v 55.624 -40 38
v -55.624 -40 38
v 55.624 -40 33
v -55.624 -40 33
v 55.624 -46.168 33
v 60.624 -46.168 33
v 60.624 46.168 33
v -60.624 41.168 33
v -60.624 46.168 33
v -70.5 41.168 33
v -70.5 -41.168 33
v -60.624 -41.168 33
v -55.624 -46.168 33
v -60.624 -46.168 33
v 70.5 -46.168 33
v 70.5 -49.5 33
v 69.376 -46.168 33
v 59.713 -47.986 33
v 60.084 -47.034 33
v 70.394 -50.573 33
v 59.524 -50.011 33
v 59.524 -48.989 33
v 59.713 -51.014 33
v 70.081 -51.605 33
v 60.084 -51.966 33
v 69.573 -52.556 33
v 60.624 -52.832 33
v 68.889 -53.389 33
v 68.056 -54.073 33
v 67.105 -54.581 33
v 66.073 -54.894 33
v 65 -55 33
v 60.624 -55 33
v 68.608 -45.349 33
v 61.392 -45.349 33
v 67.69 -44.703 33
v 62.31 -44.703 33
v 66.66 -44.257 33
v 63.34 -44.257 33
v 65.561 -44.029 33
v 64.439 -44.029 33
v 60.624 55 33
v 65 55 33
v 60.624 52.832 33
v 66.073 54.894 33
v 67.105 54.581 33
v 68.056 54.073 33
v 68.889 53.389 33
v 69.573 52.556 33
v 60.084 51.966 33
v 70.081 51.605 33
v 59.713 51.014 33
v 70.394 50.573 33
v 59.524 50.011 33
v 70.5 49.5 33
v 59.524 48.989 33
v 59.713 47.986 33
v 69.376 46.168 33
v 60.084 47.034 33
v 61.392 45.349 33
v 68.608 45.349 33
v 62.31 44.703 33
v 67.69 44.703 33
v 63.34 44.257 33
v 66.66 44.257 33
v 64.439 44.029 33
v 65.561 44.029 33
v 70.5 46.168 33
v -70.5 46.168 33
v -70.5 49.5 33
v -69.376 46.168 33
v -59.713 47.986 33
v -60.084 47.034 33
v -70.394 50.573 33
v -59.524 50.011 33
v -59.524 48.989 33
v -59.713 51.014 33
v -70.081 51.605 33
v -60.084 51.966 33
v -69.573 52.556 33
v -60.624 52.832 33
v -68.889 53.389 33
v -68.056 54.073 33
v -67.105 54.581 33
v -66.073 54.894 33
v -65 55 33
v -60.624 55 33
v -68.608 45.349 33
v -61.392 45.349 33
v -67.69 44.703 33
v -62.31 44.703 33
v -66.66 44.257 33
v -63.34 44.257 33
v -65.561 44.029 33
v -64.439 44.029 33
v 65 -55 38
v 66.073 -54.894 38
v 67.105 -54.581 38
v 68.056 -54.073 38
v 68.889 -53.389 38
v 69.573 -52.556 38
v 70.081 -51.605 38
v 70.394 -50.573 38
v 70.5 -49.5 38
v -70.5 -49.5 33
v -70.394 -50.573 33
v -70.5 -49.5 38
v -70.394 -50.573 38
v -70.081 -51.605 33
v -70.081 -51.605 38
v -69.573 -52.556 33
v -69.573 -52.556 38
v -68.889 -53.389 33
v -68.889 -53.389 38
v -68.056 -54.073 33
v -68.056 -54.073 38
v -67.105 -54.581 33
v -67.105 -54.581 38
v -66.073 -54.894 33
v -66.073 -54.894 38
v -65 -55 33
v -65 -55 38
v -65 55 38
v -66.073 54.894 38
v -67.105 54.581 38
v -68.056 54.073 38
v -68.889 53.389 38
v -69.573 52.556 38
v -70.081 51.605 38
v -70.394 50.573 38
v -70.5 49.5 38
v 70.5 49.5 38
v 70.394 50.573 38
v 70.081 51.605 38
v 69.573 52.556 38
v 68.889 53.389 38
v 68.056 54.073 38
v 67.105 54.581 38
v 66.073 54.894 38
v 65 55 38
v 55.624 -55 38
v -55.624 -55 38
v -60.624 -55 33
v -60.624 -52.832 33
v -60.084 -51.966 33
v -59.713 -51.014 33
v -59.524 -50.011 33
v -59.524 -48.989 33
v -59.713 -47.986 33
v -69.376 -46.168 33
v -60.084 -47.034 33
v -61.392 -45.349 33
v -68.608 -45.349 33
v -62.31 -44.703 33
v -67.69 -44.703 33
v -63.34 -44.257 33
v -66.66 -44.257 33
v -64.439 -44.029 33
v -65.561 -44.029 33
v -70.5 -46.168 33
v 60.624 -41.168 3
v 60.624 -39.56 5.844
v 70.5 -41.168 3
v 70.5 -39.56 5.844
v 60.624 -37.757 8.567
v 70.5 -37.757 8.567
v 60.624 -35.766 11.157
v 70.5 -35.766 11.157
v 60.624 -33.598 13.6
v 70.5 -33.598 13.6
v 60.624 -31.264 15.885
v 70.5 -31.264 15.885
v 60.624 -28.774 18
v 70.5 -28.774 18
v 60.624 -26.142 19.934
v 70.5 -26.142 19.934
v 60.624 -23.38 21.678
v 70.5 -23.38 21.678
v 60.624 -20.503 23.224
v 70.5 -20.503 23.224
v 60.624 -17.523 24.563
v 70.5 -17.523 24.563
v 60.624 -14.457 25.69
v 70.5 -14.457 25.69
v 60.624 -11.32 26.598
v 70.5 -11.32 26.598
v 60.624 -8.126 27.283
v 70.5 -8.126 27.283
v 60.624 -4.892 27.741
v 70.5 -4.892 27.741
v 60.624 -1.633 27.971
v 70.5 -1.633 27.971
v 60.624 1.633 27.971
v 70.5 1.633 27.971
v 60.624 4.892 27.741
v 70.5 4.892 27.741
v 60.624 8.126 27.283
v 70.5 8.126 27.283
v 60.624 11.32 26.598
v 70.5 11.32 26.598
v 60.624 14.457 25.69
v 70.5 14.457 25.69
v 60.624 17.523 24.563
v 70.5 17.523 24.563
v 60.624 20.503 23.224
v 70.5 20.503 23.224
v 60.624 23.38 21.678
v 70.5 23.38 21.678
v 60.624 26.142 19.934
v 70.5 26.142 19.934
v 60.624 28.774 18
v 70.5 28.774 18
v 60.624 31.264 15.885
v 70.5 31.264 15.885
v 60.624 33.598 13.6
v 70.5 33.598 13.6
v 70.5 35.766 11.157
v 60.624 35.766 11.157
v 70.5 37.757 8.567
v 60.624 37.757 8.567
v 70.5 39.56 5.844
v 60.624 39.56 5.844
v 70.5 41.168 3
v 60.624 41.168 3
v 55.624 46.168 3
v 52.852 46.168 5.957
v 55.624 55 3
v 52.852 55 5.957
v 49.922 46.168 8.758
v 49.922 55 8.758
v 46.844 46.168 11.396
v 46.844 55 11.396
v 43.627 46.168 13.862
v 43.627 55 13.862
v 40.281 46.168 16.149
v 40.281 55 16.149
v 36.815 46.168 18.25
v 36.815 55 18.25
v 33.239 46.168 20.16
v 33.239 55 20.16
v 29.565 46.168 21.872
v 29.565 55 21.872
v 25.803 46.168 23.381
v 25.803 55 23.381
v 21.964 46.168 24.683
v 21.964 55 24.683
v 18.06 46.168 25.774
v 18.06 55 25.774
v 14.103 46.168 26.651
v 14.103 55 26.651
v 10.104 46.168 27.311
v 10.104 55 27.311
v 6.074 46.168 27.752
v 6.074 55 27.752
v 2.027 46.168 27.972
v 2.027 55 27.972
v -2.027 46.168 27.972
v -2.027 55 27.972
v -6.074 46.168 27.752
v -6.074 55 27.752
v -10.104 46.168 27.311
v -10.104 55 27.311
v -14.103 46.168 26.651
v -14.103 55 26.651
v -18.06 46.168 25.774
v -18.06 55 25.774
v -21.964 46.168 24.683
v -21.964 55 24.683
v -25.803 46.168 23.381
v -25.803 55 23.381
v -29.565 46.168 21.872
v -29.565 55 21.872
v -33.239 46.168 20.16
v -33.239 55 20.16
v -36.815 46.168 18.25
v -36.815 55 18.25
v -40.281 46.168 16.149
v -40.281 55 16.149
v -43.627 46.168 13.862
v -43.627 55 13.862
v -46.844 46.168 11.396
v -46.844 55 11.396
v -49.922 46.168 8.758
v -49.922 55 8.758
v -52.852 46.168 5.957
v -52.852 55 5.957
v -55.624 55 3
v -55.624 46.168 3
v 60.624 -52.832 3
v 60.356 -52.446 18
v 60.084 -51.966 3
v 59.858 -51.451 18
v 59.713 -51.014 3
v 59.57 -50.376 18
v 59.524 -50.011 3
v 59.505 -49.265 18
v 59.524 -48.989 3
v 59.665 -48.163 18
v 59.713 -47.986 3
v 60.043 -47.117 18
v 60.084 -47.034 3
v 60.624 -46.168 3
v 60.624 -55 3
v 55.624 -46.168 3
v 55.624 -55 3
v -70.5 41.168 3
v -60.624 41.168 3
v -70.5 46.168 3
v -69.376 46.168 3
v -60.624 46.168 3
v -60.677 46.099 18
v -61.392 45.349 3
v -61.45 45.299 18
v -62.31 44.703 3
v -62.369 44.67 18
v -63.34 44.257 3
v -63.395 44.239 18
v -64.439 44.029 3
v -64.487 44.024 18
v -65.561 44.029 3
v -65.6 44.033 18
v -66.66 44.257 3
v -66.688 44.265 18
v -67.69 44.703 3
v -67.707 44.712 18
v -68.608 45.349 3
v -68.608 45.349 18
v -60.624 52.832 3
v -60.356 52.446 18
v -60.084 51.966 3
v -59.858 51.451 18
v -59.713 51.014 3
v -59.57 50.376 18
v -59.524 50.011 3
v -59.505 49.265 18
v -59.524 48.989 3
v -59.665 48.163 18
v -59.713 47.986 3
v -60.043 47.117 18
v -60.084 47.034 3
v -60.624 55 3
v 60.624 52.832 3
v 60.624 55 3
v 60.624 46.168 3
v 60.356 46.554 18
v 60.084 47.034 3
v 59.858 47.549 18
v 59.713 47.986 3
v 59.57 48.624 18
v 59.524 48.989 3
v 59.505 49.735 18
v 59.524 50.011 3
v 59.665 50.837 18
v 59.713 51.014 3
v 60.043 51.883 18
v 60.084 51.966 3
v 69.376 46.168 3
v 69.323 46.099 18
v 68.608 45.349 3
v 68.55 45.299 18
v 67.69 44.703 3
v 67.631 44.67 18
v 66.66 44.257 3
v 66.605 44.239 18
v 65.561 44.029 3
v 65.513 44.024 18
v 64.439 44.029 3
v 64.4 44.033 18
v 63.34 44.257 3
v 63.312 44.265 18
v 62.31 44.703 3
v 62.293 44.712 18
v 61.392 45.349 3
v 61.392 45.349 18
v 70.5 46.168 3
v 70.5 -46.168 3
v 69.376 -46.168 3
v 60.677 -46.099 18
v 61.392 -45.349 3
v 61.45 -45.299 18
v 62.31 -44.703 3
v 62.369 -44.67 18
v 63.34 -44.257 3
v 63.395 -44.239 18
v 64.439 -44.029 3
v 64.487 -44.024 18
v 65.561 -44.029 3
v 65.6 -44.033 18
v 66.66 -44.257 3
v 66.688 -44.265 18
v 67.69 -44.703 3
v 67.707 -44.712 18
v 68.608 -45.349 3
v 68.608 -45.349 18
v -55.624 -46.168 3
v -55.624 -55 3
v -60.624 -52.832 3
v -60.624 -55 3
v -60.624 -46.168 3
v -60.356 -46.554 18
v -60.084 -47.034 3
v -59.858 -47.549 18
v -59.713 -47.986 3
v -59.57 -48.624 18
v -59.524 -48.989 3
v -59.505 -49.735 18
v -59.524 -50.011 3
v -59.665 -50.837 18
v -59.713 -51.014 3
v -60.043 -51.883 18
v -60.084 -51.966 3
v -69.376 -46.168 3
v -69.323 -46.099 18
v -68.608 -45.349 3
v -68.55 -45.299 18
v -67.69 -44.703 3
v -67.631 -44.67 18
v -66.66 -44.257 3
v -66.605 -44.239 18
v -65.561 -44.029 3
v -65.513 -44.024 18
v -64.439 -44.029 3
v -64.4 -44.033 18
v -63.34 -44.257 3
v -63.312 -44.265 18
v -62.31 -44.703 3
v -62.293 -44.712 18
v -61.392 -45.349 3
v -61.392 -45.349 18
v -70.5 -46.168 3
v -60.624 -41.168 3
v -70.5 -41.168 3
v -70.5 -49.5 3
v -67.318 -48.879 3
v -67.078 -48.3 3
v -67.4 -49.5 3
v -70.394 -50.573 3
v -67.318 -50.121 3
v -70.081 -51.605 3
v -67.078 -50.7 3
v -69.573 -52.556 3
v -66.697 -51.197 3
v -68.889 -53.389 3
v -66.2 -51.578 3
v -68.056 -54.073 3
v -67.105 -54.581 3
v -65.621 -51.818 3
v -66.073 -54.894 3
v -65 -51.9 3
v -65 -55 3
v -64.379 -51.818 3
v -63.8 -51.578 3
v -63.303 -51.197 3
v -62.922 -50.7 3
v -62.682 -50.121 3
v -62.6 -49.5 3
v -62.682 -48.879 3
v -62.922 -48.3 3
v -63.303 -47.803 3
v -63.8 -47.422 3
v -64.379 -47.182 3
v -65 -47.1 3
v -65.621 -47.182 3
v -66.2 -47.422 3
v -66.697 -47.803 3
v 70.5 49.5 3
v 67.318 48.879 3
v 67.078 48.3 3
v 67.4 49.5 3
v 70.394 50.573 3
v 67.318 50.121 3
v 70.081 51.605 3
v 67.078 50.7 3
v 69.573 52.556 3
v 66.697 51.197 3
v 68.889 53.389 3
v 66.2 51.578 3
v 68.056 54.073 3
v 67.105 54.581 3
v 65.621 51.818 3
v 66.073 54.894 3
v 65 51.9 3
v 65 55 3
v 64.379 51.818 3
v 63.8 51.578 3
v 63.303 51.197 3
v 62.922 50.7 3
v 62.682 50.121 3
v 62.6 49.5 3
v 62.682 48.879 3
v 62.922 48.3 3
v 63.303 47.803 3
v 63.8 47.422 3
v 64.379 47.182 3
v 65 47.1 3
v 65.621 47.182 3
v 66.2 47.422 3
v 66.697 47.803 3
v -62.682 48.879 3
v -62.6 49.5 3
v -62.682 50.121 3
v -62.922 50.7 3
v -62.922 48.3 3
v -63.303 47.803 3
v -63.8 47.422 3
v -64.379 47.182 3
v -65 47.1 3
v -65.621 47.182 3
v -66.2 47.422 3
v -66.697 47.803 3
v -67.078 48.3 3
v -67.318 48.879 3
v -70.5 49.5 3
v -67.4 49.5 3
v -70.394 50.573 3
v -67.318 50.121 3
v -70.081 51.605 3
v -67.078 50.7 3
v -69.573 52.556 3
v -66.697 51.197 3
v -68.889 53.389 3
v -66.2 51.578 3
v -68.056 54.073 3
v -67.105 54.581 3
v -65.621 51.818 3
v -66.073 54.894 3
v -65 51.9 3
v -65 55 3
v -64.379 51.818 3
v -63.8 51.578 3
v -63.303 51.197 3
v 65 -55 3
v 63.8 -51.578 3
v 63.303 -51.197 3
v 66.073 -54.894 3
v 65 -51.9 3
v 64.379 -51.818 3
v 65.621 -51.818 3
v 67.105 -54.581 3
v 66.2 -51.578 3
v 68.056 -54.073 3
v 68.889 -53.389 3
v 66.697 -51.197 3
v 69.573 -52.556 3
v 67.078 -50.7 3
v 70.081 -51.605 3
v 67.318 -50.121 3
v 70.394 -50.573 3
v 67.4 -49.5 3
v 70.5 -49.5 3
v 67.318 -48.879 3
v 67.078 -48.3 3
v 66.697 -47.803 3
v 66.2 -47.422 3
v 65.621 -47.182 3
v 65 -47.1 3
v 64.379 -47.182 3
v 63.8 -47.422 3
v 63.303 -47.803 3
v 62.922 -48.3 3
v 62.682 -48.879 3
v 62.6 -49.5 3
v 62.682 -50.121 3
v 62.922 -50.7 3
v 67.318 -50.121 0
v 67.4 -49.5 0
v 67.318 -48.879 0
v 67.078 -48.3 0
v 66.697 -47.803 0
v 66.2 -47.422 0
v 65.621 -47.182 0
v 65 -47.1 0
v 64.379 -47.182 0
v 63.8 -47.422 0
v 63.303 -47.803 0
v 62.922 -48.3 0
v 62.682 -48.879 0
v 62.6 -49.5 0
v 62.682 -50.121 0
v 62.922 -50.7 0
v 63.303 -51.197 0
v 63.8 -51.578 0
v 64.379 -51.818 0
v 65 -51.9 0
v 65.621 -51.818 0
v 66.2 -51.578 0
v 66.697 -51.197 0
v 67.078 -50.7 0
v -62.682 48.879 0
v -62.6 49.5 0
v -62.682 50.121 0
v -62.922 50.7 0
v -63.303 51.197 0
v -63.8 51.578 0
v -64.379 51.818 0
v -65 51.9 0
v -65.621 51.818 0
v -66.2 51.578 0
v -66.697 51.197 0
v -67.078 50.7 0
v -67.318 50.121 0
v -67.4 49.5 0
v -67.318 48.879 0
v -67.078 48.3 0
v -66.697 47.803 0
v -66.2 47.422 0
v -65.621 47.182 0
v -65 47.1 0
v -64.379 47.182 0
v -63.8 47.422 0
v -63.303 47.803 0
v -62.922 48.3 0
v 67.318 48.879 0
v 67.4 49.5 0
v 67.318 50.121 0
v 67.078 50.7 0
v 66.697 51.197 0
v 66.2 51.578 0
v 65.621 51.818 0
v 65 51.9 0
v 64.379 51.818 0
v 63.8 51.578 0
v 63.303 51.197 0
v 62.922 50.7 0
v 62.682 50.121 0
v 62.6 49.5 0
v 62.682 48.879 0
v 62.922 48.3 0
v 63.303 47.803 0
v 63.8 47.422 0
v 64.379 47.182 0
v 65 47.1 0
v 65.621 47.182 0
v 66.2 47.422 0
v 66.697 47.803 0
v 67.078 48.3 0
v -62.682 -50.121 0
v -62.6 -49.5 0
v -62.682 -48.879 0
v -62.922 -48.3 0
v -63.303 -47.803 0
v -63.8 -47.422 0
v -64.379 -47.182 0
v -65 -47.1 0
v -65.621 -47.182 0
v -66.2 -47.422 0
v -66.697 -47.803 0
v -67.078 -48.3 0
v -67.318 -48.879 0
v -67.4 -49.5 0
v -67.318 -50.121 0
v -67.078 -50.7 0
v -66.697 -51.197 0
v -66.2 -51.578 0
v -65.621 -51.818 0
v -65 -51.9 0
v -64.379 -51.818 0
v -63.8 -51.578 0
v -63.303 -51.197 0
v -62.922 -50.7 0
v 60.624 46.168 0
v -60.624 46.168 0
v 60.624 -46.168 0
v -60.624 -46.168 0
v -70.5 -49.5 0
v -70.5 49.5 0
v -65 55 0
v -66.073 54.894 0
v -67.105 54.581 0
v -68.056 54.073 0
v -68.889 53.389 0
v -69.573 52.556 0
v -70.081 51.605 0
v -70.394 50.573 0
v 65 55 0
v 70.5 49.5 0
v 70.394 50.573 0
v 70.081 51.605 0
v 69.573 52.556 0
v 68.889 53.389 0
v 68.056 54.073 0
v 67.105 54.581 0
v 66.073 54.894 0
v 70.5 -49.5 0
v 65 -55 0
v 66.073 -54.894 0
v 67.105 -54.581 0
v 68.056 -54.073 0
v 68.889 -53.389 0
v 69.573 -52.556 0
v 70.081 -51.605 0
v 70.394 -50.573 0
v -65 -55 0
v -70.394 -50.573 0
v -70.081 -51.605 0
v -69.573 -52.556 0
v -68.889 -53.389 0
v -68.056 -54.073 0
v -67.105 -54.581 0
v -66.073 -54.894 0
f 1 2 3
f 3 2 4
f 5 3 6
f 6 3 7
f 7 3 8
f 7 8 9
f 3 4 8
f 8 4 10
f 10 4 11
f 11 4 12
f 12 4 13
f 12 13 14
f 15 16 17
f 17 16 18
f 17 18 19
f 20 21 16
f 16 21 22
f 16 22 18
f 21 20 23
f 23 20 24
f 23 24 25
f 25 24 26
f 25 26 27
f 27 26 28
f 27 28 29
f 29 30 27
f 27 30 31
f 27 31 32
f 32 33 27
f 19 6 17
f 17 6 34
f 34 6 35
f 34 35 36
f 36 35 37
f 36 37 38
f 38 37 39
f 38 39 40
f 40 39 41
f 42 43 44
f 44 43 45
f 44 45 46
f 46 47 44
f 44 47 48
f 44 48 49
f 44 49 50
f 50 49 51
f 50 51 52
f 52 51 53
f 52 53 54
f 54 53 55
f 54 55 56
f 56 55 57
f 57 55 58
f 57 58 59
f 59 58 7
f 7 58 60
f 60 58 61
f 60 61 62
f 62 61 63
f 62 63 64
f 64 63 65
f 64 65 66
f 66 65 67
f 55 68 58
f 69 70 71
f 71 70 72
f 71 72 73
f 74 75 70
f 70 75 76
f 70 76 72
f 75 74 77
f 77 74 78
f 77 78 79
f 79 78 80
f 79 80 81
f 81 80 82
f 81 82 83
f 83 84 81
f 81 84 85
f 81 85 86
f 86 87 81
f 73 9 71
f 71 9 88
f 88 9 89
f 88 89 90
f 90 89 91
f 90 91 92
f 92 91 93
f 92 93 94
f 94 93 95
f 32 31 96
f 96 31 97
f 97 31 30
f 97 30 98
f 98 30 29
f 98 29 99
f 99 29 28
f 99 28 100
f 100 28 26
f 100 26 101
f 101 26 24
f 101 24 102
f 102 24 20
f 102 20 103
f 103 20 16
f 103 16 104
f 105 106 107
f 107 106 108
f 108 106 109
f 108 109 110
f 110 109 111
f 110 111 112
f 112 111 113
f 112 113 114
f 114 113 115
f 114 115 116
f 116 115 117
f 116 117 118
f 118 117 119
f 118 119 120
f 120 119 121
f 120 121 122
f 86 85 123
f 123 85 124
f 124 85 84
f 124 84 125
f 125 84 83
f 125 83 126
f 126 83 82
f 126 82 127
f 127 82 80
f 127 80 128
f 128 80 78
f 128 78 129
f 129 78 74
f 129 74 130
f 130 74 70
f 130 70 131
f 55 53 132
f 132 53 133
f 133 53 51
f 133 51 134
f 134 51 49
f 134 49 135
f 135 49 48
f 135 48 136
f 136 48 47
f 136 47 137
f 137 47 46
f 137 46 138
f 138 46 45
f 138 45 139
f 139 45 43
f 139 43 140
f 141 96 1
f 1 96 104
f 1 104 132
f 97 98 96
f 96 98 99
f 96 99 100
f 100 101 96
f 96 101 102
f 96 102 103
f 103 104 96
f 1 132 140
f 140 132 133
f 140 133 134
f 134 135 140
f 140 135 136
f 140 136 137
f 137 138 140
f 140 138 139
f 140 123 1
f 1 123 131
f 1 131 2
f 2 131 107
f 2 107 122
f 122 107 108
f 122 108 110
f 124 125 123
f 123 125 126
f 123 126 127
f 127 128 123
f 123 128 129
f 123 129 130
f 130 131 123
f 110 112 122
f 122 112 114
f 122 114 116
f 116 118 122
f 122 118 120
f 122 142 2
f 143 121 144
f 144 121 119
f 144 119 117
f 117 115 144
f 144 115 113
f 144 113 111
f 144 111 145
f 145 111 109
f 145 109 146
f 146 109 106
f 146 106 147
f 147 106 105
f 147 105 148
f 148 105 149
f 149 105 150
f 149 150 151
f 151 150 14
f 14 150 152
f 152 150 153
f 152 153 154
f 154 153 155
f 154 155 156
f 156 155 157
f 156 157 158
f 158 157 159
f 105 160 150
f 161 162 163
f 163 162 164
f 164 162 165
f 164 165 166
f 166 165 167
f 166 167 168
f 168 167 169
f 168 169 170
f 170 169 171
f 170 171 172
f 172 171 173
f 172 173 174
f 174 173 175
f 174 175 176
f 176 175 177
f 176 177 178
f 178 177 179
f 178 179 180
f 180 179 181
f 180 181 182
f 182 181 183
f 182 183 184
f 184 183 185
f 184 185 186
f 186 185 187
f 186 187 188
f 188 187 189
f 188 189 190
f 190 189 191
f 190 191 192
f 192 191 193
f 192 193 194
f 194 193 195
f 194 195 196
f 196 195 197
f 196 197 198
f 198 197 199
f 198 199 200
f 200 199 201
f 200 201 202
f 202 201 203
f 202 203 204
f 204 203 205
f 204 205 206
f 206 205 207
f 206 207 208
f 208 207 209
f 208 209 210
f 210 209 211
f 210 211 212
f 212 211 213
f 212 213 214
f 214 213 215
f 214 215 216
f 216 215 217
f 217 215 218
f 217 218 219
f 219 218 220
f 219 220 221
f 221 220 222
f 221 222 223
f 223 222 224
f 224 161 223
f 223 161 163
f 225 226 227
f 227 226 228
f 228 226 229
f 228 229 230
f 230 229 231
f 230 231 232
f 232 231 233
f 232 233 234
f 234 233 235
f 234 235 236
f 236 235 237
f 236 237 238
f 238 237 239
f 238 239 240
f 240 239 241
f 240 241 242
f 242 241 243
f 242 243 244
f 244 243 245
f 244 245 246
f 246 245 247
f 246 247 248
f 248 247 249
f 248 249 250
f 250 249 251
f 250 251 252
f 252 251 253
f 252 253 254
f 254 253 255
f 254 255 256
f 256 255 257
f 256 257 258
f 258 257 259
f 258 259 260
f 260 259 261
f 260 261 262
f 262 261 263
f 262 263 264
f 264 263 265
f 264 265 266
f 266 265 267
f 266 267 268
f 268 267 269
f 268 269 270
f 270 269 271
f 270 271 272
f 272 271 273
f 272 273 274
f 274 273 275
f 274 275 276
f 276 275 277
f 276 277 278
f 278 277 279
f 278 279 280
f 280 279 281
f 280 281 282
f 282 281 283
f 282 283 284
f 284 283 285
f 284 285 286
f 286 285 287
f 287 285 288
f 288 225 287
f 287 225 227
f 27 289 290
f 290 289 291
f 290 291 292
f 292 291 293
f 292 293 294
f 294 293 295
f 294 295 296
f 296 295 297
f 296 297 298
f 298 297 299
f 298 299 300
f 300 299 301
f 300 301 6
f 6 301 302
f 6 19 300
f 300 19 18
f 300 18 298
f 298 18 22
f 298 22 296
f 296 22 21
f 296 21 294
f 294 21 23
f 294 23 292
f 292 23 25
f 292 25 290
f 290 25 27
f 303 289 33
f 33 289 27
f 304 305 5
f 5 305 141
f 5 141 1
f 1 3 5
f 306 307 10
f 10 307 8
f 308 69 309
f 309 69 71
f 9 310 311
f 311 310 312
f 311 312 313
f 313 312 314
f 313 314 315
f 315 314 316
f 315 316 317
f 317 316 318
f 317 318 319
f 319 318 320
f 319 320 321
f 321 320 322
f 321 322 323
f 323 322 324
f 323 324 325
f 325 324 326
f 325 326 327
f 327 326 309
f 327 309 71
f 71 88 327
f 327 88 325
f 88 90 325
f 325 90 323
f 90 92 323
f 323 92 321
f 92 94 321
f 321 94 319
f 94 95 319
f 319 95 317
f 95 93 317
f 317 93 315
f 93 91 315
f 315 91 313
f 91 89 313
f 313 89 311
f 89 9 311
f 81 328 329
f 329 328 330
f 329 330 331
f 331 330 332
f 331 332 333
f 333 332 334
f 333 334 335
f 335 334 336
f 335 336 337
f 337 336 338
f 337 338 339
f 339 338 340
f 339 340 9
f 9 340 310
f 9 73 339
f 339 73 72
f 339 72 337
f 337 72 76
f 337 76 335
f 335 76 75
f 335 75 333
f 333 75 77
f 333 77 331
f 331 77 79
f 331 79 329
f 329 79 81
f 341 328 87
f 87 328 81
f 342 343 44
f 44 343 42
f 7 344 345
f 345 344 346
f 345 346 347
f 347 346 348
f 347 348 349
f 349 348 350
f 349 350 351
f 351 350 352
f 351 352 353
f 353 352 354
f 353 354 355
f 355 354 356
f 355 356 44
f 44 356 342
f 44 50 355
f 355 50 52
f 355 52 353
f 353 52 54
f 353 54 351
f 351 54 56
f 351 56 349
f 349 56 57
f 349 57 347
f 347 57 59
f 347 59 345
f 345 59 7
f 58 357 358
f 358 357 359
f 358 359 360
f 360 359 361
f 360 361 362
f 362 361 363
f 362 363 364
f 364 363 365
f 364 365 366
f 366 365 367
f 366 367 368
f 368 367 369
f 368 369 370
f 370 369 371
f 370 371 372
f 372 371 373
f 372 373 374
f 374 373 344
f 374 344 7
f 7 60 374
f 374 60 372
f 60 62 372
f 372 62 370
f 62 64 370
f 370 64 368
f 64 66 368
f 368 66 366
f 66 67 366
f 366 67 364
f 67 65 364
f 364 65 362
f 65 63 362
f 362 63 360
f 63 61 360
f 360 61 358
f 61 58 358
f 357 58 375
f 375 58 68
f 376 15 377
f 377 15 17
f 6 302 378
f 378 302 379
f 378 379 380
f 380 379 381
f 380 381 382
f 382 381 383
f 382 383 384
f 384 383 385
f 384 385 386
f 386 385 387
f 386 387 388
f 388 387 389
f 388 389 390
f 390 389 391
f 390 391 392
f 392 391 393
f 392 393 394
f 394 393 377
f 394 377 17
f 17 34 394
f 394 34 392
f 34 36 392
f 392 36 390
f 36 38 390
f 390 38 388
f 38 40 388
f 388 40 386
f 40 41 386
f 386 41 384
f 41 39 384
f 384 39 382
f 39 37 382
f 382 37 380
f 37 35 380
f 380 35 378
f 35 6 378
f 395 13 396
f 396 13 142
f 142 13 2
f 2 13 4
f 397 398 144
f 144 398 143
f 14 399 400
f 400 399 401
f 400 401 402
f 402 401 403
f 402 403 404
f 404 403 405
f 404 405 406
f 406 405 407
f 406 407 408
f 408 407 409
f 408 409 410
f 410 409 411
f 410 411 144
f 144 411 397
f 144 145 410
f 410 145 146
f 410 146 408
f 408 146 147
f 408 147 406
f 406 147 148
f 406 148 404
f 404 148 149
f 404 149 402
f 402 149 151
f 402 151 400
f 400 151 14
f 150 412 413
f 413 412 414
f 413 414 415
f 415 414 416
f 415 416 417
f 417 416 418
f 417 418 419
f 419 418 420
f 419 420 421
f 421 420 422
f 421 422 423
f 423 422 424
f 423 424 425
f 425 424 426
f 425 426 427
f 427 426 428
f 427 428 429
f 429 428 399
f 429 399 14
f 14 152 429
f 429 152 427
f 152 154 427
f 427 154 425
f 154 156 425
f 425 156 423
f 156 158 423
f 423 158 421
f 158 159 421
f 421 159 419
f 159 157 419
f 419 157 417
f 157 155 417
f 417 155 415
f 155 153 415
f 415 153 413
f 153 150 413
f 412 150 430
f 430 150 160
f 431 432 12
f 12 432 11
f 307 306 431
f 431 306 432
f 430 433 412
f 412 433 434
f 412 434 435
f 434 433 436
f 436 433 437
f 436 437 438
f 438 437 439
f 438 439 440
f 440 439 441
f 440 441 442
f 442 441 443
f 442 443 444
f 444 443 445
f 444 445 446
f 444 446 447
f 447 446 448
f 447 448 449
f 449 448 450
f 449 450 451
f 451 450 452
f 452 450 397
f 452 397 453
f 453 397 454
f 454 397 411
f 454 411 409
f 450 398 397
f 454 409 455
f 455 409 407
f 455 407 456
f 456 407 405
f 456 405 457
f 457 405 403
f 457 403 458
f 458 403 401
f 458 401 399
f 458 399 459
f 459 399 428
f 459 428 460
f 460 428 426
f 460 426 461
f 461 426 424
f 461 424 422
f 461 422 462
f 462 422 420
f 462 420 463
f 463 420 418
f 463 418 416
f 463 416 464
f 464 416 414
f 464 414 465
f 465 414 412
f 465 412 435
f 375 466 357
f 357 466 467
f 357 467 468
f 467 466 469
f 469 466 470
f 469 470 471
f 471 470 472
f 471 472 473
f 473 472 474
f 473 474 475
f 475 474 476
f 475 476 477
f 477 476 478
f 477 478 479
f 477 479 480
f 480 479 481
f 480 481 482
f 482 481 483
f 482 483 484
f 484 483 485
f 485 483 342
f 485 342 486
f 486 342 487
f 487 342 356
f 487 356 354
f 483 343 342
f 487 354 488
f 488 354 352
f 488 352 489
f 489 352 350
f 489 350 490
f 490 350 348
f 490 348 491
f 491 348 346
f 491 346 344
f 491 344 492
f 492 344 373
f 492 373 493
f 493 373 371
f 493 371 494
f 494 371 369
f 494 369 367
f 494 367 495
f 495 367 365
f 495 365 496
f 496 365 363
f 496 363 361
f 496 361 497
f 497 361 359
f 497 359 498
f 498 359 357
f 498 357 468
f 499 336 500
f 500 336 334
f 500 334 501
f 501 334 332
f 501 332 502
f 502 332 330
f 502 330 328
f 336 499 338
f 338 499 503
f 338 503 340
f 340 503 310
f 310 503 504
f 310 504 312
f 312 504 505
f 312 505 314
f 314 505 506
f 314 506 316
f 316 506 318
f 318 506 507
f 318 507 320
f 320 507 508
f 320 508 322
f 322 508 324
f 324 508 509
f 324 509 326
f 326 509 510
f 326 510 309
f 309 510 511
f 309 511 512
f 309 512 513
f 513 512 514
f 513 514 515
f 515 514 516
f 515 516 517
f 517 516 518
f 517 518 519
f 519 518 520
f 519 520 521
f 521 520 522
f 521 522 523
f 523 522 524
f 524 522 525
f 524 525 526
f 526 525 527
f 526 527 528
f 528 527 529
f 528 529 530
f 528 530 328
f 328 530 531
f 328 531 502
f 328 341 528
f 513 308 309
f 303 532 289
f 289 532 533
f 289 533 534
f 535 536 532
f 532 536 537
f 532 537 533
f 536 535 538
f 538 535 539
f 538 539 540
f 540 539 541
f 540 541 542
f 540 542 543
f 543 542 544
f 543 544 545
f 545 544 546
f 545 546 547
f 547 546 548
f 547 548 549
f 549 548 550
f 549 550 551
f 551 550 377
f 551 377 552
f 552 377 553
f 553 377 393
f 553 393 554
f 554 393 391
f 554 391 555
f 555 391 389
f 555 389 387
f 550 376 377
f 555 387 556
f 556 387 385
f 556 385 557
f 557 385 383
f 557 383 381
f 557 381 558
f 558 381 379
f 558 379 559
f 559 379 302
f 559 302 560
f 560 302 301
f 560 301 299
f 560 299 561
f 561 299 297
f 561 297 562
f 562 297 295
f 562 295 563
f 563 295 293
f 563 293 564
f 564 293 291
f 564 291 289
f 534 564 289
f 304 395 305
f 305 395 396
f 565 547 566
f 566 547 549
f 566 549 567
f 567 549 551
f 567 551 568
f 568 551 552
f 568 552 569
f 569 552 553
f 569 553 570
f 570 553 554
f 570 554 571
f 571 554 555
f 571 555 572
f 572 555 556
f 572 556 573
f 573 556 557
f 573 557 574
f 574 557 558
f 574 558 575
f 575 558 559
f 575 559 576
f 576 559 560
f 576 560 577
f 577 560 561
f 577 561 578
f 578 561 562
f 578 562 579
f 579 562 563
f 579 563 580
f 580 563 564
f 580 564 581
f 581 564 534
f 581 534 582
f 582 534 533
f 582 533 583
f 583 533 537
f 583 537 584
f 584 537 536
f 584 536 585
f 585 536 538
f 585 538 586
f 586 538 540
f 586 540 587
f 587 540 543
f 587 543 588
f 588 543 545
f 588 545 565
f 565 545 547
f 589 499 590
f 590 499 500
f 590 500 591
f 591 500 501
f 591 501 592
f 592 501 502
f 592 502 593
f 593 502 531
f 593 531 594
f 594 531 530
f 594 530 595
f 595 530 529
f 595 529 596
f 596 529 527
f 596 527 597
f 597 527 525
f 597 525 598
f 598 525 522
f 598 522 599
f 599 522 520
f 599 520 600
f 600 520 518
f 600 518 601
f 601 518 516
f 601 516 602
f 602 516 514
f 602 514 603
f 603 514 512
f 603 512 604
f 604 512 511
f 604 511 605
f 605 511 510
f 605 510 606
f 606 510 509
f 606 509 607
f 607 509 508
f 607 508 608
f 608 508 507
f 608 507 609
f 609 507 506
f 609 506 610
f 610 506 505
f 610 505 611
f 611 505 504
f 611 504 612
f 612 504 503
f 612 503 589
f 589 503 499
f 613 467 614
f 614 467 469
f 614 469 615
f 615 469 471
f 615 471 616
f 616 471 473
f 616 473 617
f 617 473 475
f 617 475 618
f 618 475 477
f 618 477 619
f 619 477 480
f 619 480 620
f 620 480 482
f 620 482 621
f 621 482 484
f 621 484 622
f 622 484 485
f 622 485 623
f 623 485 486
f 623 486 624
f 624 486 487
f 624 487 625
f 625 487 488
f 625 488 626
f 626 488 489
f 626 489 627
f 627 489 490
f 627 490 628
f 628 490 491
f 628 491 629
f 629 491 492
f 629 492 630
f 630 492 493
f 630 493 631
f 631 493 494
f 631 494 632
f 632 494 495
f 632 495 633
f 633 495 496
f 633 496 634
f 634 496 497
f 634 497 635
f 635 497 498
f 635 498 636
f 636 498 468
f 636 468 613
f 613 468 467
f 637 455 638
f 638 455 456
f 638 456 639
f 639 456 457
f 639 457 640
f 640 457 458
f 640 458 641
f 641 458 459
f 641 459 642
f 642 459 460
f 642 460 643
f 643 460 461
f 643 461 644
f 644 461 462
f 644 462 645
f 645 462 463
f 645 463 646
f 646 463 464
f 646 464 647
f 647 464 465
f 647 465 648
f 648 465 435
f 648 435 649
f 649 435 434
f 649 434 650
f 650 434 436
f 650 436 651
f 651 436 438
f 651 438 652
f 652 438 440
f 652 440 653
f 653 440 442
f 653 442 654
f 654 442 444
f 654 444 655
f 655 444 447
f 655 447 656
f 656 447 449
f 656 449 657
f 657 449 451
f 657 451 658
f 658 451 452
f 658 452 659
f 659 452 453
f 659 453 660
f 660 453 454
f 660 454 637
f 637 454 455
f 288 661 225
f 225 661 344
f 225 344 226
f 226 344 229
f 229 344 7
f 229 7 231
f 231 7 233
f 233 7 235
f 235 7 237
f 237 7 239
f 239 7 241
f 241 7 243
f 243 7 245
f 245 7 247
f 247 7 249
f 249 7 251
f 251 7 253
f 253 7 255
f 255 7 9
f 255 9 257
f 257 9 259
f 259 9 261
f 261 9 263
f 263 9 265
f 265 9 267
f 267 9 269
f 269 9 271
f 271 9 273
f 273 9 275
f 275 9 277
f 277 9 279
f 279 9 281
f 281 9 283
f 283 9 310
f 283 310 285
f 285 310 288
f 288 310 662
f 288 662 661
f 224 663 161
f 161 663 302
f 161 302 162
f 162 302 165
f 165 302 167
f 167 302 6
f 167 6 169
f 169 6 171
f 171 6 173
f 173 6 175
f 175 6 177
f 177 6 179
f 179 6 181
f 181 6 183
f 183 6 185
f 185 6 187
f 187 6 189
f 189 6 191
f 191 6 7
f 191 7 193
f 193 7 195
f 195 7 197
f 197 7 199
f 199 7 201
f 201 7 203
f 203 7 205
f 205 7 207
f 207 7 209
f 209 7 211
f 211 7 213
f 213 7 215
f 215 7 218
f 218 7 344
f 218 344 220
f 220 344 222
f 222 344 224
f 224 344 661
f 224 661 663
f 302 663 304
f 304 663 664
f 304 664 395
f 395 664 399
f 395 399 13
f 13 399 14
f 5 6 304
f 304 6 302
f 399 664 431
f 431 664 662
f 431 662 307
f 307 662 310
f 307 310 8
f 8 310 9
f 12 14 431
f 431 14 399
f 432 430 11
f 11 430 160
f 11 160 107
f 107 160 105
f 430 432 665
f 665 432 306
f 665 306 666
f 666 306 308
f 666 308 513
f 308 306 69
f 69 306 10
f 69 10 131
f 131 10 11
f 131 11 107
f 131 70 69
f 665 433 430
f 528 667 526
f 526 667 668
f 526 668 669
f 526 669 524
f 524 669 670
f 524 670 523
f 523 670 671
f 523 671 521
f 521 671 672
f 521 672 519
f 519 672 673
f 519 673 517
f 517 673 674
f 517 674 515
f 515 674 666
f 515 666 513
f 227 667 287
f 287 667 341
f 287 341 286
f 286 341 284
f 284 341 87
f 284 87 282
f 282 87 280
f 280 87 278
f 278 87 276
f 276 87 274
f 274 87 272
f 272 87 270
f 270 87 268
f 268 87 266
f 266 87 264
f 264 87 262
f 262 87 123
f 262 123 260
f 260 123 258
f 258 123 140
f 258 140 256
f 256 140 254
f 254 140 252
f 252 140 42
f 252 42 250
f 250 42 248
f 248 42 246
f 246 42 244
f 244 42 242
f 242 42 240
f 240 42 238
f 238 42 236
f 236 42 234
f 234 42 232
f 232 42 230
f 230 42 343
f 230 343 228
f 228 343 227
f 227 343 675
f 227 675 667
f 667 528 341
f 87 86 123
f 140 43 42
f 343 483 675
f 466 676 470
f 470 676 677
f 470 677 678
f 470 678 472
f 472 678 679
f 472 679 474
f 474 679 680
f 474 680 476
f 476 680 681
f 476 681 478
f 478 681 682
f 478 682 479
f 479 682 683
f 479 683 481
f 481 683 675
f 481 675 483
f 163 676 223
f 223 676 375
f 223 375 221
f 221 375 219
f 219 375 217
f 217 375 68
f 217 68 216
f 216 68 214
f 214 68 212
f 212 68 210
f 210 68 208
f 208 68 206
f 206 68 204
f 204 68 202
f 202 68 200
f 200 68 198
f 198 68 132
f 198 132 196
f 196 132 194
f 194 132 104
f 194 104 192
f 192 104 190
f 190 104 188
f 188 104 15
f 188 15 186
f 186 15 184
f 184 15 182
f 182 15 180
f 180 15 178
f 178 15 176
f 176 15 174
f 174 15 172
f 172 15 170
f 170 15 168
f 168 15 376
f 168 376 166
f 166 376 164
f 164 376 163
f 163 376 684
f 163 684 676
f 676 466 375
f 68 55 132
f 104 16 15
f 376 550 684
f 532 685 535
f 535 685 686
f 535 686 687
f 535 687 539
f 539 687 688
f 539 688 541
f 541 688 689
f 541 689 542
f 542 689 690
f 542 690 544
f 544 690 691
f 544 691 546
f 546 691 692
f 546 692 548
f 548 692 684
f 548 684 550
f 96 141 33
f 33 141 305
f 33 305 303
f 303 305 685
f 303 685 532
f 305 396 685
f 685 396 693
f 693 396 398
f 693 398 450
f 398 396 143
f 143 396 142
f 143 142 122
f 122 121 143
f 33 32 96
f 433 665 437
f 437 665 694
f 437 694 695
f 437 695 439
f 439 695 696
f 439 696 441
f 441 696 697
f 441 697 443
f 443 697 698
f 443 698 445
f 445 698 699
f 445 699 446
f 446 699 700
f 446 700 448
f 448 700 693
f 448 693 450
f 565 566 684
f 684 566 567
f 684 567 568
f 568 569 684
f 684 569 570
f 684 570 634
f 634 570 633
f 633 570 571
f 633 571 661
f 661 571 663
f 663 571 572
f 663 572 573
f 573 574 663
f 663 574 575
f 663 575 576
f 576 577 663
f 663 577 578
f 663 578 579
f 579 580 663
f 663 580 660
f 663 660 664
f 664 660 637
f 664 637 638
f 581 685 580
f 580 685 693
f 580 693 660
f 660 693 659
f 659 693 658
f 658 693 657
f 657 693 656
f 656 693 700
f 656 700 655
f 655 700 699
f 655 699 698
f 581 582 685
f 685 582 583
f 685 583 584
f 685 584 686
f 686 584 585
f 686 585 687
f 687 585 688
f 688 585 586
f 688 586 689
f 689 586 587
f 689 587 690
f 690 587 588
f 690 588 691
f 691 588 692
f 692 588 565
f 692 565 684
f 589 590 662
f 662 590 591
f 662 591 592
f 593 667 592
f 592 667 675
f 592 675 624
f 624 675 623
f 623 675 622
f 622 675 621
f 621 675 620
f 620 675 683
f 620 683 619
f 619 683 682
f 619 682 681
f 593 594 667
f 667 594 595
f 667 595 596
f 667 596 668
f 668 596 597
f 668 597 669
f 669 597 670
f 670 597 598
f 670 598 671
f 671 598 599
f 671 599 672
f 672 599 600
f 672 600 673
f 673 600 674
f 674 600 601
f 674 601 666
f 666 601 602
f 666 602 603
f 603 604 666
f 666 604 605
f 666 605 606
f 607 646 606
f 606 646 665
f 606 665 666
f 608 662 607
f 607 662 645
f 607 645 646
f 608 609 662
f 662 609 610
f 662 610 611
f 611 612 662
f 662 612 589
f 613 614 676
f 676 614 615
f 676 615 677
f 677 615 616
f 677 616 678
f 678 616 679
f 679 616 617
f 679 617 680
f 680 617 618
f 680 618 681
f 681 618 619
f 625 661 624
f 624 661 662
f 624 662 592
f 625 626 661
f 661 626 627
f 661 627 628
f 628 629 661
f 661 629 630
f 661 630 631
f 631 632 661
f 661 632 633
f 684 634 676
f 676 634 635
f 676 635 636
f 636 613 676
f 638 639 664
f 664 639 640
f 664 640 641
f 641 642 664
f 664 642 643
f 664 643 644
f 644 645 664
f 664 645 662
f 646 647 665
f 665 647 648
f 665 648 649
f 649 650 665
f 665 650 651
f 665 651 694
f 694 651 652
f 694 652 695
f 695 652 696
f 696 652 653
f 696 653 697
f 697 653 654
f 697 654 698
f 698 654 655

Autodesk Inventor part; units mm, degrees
ref_plane "YZ Plane" through (0, 0, 0) normal (1, 0, 0) x (0, 1, 0)
ref_plane "XZ Plane" through (0, 0, 0) normal (0, 1, 0) x (-1, 0, 0)
ref_plane "XY Plane" through (0, 0, 0) normal (0, 0, 1) x (1, 0, 0)
sketch "Sketch1" plane through (0, 0, 0) normal (0, 0, 1) x (1, 0, 0)
  line L0 (-65, -49.5) -> (65, -49.5) construction
  line L1 (65, -49.5) -> (65, 49.5) construction
  line L2 (65, 49.5) -> (-65, 49.5) construction
  line L3 (-65, 49.5) -> (-65, -49.5) construction
  line L4 (-65, -49.5) -> (65, 49.5) construction
  line L5 (65, -49.5) -> (-65, 49.5) construction
  arc A0 (-65, 55) -> (-70.5, 49.5) centre (-65, 49.5) ccw
  arc A1 (70.5, 49.5) -> (65, 55) centre (65, 49.5) ccw
  arc A2 (65, -55) -> (70.5, -49.5) centre (65, -49.5) ccw
  arc A3 (-70.5, -49.5) -> (-65, -55) centre (-65, -49.5) ccw
  line L6 (-70.5, 49.5) -> (-70.5, -49.5)
  line L7 (-65, -55) -> (65, -55)
  line L8 (70.5, -49.5) -> (70.5, 49.5)
  line L9 (65, 55) -> (-65, 55)
  line L10 (-60.6244, -46.1678) -> (-60.6244, 46.1678)
  line L11 (-60.6244, 46.1678) -> (60.6244, 46.1678)
  line L12 (60.6244, 46.1678) -> (60.6244, -46.1678)
  line L13 (60.6244, -46.1678) -> (-60.6244, -46.1678)
  point P0 (0, 0)
  dimension "d0" = 130
  dimension "d1" = 99
  dimension "d2" = 11
  dimension "d3" = 11
  dimension "d4" = 11
  dimension "d5" = 11
extrude "Extrusion1" add sketch "Sketch1" along normal blind 3
sketch "Sketch2" plane through (0, 0, 3) normal (0, 0, 1) x (1, 0, 0)
  arc A0 (-65, 55) -> (-70.5, 49.5) centre (-65, 49.5) ccw projected
  circle A1 centre (-65, 49.5) radius 2.4
  arc A2 (70.5, 49.5) -> (65, 55) centre (65, 49.5) ccw projected
  circle A3 centre (65, 49.5) radius 2.4
  arc A4 (65, -55) -> (70.5, -49.5) centre (65, -49.5) ccw projected
  circle A5 centre (65, -49.5) radius 2.4
  arc A6 (-70.5, -49.5) -> (-65, -55) centre (-65, -49.5) ccw projected
  circle A7 centre (-65, -49.5) radius 2.4
  point P0 (0, 0)
  dimension "d8" = 4.8
  dimension "d9" = 4.8
  dimension "d10" = 4.8
  dimension "d11" = 4.8
extrude "Extrusion2" cut sketch "Sketch2" against normal blind 8
sketch "Sketch3" plane through (0, 0, 3) normal (0, 0, 1) x (1, 0, 0)
  circle A0 centre (-65, 49.5) radius 2.4 construction
  circle A1 centre (-65, 49.5) radius 5.5 construction
  circle A2 centre (65, 49.5) radius 2.4 construction
  circle A3 centre (65, 49.5) radius 5.5 construction
  circle A4 centre (65, -49.5) radius 2.4 construction
  circle A5 centre (65, -49.5) radius 5.5 construction
  circle A6 centre (-65, -49.5) radius 2.4 construction
  circle A7 centre (-65, -49.5) radius 5.5 construction
  line L0 (-60.6244, -46.1678) -> (-60.6244, 46.1678) projected
  line L1 (-65, 55) -> (65, 55) projected
  line L2 (-60.6244, 52.8322) -> (-60.6244, 55)
  line L3 (-60.6244, 55) -> (60.6244, 55)
  line L4 (60.6244, 55) -> (60.6244, 52.8322)
  line L5 (60.6244, 46.1678) -> (-60.6244, 46.1678)
  arc A8 (-60.6244, 46.1678) -> (-60.6244, 52.8322) centre (-65, 49.5) ccw
  line L6 (60.6244, 46.1678) -> (-60.6244, 46.1678) projected
  arc A9 (60.6244, 52.8322) -> (60.6244, 46.1678) centre (65, 49.5) ccw
  line L7 (70.5, 49.5) -> (70.5, -49.5) projected
  line L8 (69.3756, 46.1678) -> (70.5, 46.1678)
  line L9 (70.5, 46.1678) -> (70.5, -46.1678)
  line L10 (70.5, -46.1678) -> (69.3756, -46.1678)
  line L11 (60.6244, -46.1678) -> (60.6244, 46.1678)
  arc A10 (69.3756, -46.1678) -> (60.6244, -46.1678) centre (65, -49.5) ccw
  arc A11 (60.6244, 46.1678) -> (69.3756, 46.1678) centre (65, 49.5) ccw
  line L12 (-70.5, -49.5) -> (-70.5, 49.5) projected
  line L13 (-69.3756, 46.1678) -> (-70.5, 46.1678)
  line L14 (-70.5, 46.1678) -> (-70.5, 41.1678)
  line L15 (-70.5, 41.1678) -> (-60.6244, 41.1678)
  line L16 (-60.6244, 41.1678) -> (-60.6244, 46.1678)
  arc A12 (-69.3756, 46.1678) -> (-60.6244, 46.1678) centre (-65, 49.5) ccw
  line L17 (-69.3756, -46.1678) -> (-70.5, -46.1678)
  line L18 (-70.5, -46.1678) -> (-70.5, -41.1678)
  line L19 (-70.5, -41.1678) -> (-60.6244, -41.1678)
  line L20 (-60.6244, -41.1678) -> (-60.6244, -46.1678)
  arc A13 (-60.6244, -46.1678) -> (-69.3756, -46.1678) centre (-65, -49.5) ccw
  line L21 (65, -55) -> (-65, -55) projected
  line L22 (-60.6244, -52.8322) -> (-60.6244, -55)
  line L23 (-60.6244, -55) -> (-55.6244, -55)
  line L24 (-55.6244, -55) -> (-55.6244, -46.1678)
  line L25 (-55.6244, -46.1678) -> (-60.6244, -46.1678)
  line L26 (-60.6244, -46.1678) -> (60.6244, -46.1678) projected
  arc A14 (-60.6244, -52.8322) -> (-60.6244, -46.1678) centre (-65, -49.5) ccw
  line L27 (60.6244, -52.8322) -> (60.6244, -55)
  line L28 (60.6244, -55) -> (55.6244, -55)
  line L29 (55.6244, -55) -> (55.6244, -46.1678)
  line L30 (55.6244, -46.1678) -> (60.6244, -46.1678)
  arc A15 (60.6244, -46.1678) -> (60.6244, -52.8322) centre (65, -49.5) ccw
  line L31 (-60.6244, 52.8322) -> (-60.6244, 55)
  arc A16 (60.6244, 46.1678) -> (69.3756, 46.1678) centre (65, 49.5) ccw
  line L32 (69.3756, 46.1678) -> (70.5, 46.1678)
  line L33 (70.5, 46.1678) -> (70.5, -46.1678)
  line L34 (70.5, -46.1678) -> (69.3756, -46.1678)
  arc A17 (69.3756, -46.1678) -> (60.6244, -46.1678) centre (65, -49.5) ccw
  line L35 (60.6244, -46.1678) -> (60.6244, 46.1678) projected
  line L36 (60.6244, -46.1678) -> (60.6244, 46.1678)
  arc A18 (60.6244, 52.8322) -> (60.6244, 46.1678) centre (65, 49.5) ccw
  line L37 (60.6244, 52.8322) -> (60.6244, 55)
  line L38 (60.6244, 55) -> (-60.6244, 55)
  line L39 (-60.6244, 55) -> (-60.6244, 52.8322)
  arc A19 (-60.6244, 46.1678) -> (-60.6244, 52.8322) centre (-65, 49.5) ccw
  line L40 (-60.6244, 46.1678) -> (60.6244, 46.1678)
  line L41 (-60.6244, 46.1678) -> (-60.6244, 41.1678)
  line L42 (-60.6244, 41.1678) -> (-70.5, 41.1678)
  line L43 (-70.5, 41.1678) -> (-70.5, 46.1678)
  line L44 (-70.5, 46.1678) -> (-69.3756, 46.1678)
  arc A20 (-69.3756, 46.1678) -> (-60.6244, 46.1678) centre (-65, 49.5) ccw
  arc A21 (-60.6244, -46.1678) -> (-69.3756, -46.1678) centre (-65, -49.5) ccw
  line L45 (-60.6244, -46.1678) -> (-60.6244, -41.1678)
  line L46 (-60.6244, -41.1678) -> (-70.5, -41.1678)
  line L47 (-70.5, -41.1678) -> (-70.5, -46.1678)
  line L48 (-70.5, -46.1678) -> (-69.3756, -46.1678)
  line L49 (-60.6244, -46.1678) -> (-55.6244, -46.1678)
  line L50 (-55.6244, -46.1678) -> (-55.6244, -55)
  line L51 (-55.6244, -55) -> (-60.6244, -55)
  line L52 (-60.6244, -55) -> (-60.6244, -52.8322)
  arc A22 (-60.6244, -52.8322) -> (-60.6244, -46.1678) centre (-65, -49.5) ccw
  point P0 (0, 0)
  dimension "d14" = 5
  dimension "d15" = 5
  dimension "d16" = 5
  dimension "d17" = 5
extrude "Extrusion3" add sketch "Sketch3" along normal blind 30 contours A13 L17 L12 L19 L0 | L25 L24 L21 L22 A14 | L15 L12 L13 A12 L0 | L26 A15 L27 L21 L29 | A8 L2 L1 L4 A9 L5 | L11 A11 L8 L7 L10 A10
sketch "Sketch4" plane through (-65, 55, 0) normal (0, 1, 0) x (1, 0, 0)
  line L0 (125.6244, -33) -> (4.3756, -33) construction
  line L1 (65, -33) -> (65, -28) construction
  line L2 (124.5, -3) -> (125.6244, -3) construction
  line L3 (125.6244, -3) -> (120.6244, -3) construction
  line L4 (-5.5, -3) -> (4.3756, -3) construction
  line L5 (120.6244, -3) -> (9.3756, -3) construction
  line L6 (4.3756, -3) -> (9.3756, -3) construction
  arc A0 (9.3756, -3) -> (120.6244, -3) centre (65, 46.3814) ccw
  line L7 (9.3756, -3) -> (9.3756, -33) projected
  line L8 (120.6244, -3) -> (9.3756, -3)
  point P0 (65, 0)
  dimension "d20" = 5
  dimension "d21" = 5
extrude "Extrusion4" cut sketch "Sketch4" against normal blind 10
sketch "Sketch5" plane through (70.5, -49.5, 0) normal (1, 0, 0) x (0, 0, -1)
  line L0 (-33, 95.6678) -> (-33, 3.3322) construction
  line L1 (-33, 49.5) -> (-28, 49.5) construction
  line L2 (0, 3.3322) -> (-3, 3.3322) construction
  line L3 (-3, 8.3322) -> (-3, 90.6678) construction
  line L4 (-3, 3.3322) -> (-3, 8.3322) construction
  line L5 (-3, 95.6678) -> (-33, 95.6678) construction
  line L6 (-3, 95.6678) -> (-3, 90.6678) construction
  line L7 (-3, 90.6678) -> (-33, 90.6678) projected
  arc A0 (-3, 90.6678) -> (-3, 8.3322) centre (18.3957, 49.5) ccw
  line L8 (-3, 8.3322) -> (-3, 90.6678)
  point P0 (0, 49.5)
  dimension "d24" = 5
extrude "Extrusion5" cut sketch "Sketch5" against normal blind 10
sketch "Sketch6" plane through (0, 0, 33) normal (0, 0, 1) x (1, 0, 0)
  line L0 (70.5, 46.1678) -> (70.5, 49.5) construction
  line L1 (70.5, 46.1678) -> (70.5, 59.6838) construction
  line L2 (-65, -55) -> (65, -55)
  line L3 (70.5, -49.5) -> (70.5, 49.5)
  line L4 (65, 55) -> (-65, 55)
  line L5 (-70.5, 49.5) -> (-70.5, -49.5)
  line L6 (-70.5, -55) -> (70.5, 55) construction
  line L7 (70.5, -55) -> (-70.5, 55) construction
  arc A0 (-65, 55) -> (-70.5, 49.5) centre (-65, 49.5) ccw projected
  arc A1 (-65, 55) -> (-70.5, 49.5) centre (-65, 49.5) ccw
  line L8 (-70.5, -49.5) -> (-70.5, 49.5) projected
  arc A2 (-70.5, -49.5) -> (-65, -55) centre (-65, -49.5) ccw projected
  arc A3 (-70.5, -49.5) -> (-65, -55) centre (-65, -49.5) ccw
  arc A4 (65, -55) -> (70.5, -49.5) centre (65, -49.5) ccw projected
  arc A5 (65, -55) -> (70.5, -49.5) centre (65, -49.5) ccw
  arc A6 (70.5, 49.5) -> (65, 55) centre (65, 49.5) ccw projected
  arc A7 (70.5, 49.5) -> (65, 55) centre (65, 49.5) ccw
  point P0 (0, 0)
extrude "Extrusion6" add sketch "Sketch6" along normal blind 5
sketch "Sketch7" plane through (0, 0, 38) normal (0, 0, 1) x (1, 0, 0)
  line L0 (55.6244, -46.1678) -> (55.6244, -55) projected
  line L1 (55.6244, -55) -> (55.6244, -40)
  line L2 (55.6244, -40) -> (-55.6244, -40)
  line L3 (-55.6244, -40) -> (-55.6244, -55)
  line L4 (-55.6244, -55) -> (55.6244, -55)
  point P0 (0, 0)
  dimension "d29" = 15
extrude "Extrusion7" cut sketch "Sketch7" against normal blind 5
properties part number "CyberDeckHDPower1"
